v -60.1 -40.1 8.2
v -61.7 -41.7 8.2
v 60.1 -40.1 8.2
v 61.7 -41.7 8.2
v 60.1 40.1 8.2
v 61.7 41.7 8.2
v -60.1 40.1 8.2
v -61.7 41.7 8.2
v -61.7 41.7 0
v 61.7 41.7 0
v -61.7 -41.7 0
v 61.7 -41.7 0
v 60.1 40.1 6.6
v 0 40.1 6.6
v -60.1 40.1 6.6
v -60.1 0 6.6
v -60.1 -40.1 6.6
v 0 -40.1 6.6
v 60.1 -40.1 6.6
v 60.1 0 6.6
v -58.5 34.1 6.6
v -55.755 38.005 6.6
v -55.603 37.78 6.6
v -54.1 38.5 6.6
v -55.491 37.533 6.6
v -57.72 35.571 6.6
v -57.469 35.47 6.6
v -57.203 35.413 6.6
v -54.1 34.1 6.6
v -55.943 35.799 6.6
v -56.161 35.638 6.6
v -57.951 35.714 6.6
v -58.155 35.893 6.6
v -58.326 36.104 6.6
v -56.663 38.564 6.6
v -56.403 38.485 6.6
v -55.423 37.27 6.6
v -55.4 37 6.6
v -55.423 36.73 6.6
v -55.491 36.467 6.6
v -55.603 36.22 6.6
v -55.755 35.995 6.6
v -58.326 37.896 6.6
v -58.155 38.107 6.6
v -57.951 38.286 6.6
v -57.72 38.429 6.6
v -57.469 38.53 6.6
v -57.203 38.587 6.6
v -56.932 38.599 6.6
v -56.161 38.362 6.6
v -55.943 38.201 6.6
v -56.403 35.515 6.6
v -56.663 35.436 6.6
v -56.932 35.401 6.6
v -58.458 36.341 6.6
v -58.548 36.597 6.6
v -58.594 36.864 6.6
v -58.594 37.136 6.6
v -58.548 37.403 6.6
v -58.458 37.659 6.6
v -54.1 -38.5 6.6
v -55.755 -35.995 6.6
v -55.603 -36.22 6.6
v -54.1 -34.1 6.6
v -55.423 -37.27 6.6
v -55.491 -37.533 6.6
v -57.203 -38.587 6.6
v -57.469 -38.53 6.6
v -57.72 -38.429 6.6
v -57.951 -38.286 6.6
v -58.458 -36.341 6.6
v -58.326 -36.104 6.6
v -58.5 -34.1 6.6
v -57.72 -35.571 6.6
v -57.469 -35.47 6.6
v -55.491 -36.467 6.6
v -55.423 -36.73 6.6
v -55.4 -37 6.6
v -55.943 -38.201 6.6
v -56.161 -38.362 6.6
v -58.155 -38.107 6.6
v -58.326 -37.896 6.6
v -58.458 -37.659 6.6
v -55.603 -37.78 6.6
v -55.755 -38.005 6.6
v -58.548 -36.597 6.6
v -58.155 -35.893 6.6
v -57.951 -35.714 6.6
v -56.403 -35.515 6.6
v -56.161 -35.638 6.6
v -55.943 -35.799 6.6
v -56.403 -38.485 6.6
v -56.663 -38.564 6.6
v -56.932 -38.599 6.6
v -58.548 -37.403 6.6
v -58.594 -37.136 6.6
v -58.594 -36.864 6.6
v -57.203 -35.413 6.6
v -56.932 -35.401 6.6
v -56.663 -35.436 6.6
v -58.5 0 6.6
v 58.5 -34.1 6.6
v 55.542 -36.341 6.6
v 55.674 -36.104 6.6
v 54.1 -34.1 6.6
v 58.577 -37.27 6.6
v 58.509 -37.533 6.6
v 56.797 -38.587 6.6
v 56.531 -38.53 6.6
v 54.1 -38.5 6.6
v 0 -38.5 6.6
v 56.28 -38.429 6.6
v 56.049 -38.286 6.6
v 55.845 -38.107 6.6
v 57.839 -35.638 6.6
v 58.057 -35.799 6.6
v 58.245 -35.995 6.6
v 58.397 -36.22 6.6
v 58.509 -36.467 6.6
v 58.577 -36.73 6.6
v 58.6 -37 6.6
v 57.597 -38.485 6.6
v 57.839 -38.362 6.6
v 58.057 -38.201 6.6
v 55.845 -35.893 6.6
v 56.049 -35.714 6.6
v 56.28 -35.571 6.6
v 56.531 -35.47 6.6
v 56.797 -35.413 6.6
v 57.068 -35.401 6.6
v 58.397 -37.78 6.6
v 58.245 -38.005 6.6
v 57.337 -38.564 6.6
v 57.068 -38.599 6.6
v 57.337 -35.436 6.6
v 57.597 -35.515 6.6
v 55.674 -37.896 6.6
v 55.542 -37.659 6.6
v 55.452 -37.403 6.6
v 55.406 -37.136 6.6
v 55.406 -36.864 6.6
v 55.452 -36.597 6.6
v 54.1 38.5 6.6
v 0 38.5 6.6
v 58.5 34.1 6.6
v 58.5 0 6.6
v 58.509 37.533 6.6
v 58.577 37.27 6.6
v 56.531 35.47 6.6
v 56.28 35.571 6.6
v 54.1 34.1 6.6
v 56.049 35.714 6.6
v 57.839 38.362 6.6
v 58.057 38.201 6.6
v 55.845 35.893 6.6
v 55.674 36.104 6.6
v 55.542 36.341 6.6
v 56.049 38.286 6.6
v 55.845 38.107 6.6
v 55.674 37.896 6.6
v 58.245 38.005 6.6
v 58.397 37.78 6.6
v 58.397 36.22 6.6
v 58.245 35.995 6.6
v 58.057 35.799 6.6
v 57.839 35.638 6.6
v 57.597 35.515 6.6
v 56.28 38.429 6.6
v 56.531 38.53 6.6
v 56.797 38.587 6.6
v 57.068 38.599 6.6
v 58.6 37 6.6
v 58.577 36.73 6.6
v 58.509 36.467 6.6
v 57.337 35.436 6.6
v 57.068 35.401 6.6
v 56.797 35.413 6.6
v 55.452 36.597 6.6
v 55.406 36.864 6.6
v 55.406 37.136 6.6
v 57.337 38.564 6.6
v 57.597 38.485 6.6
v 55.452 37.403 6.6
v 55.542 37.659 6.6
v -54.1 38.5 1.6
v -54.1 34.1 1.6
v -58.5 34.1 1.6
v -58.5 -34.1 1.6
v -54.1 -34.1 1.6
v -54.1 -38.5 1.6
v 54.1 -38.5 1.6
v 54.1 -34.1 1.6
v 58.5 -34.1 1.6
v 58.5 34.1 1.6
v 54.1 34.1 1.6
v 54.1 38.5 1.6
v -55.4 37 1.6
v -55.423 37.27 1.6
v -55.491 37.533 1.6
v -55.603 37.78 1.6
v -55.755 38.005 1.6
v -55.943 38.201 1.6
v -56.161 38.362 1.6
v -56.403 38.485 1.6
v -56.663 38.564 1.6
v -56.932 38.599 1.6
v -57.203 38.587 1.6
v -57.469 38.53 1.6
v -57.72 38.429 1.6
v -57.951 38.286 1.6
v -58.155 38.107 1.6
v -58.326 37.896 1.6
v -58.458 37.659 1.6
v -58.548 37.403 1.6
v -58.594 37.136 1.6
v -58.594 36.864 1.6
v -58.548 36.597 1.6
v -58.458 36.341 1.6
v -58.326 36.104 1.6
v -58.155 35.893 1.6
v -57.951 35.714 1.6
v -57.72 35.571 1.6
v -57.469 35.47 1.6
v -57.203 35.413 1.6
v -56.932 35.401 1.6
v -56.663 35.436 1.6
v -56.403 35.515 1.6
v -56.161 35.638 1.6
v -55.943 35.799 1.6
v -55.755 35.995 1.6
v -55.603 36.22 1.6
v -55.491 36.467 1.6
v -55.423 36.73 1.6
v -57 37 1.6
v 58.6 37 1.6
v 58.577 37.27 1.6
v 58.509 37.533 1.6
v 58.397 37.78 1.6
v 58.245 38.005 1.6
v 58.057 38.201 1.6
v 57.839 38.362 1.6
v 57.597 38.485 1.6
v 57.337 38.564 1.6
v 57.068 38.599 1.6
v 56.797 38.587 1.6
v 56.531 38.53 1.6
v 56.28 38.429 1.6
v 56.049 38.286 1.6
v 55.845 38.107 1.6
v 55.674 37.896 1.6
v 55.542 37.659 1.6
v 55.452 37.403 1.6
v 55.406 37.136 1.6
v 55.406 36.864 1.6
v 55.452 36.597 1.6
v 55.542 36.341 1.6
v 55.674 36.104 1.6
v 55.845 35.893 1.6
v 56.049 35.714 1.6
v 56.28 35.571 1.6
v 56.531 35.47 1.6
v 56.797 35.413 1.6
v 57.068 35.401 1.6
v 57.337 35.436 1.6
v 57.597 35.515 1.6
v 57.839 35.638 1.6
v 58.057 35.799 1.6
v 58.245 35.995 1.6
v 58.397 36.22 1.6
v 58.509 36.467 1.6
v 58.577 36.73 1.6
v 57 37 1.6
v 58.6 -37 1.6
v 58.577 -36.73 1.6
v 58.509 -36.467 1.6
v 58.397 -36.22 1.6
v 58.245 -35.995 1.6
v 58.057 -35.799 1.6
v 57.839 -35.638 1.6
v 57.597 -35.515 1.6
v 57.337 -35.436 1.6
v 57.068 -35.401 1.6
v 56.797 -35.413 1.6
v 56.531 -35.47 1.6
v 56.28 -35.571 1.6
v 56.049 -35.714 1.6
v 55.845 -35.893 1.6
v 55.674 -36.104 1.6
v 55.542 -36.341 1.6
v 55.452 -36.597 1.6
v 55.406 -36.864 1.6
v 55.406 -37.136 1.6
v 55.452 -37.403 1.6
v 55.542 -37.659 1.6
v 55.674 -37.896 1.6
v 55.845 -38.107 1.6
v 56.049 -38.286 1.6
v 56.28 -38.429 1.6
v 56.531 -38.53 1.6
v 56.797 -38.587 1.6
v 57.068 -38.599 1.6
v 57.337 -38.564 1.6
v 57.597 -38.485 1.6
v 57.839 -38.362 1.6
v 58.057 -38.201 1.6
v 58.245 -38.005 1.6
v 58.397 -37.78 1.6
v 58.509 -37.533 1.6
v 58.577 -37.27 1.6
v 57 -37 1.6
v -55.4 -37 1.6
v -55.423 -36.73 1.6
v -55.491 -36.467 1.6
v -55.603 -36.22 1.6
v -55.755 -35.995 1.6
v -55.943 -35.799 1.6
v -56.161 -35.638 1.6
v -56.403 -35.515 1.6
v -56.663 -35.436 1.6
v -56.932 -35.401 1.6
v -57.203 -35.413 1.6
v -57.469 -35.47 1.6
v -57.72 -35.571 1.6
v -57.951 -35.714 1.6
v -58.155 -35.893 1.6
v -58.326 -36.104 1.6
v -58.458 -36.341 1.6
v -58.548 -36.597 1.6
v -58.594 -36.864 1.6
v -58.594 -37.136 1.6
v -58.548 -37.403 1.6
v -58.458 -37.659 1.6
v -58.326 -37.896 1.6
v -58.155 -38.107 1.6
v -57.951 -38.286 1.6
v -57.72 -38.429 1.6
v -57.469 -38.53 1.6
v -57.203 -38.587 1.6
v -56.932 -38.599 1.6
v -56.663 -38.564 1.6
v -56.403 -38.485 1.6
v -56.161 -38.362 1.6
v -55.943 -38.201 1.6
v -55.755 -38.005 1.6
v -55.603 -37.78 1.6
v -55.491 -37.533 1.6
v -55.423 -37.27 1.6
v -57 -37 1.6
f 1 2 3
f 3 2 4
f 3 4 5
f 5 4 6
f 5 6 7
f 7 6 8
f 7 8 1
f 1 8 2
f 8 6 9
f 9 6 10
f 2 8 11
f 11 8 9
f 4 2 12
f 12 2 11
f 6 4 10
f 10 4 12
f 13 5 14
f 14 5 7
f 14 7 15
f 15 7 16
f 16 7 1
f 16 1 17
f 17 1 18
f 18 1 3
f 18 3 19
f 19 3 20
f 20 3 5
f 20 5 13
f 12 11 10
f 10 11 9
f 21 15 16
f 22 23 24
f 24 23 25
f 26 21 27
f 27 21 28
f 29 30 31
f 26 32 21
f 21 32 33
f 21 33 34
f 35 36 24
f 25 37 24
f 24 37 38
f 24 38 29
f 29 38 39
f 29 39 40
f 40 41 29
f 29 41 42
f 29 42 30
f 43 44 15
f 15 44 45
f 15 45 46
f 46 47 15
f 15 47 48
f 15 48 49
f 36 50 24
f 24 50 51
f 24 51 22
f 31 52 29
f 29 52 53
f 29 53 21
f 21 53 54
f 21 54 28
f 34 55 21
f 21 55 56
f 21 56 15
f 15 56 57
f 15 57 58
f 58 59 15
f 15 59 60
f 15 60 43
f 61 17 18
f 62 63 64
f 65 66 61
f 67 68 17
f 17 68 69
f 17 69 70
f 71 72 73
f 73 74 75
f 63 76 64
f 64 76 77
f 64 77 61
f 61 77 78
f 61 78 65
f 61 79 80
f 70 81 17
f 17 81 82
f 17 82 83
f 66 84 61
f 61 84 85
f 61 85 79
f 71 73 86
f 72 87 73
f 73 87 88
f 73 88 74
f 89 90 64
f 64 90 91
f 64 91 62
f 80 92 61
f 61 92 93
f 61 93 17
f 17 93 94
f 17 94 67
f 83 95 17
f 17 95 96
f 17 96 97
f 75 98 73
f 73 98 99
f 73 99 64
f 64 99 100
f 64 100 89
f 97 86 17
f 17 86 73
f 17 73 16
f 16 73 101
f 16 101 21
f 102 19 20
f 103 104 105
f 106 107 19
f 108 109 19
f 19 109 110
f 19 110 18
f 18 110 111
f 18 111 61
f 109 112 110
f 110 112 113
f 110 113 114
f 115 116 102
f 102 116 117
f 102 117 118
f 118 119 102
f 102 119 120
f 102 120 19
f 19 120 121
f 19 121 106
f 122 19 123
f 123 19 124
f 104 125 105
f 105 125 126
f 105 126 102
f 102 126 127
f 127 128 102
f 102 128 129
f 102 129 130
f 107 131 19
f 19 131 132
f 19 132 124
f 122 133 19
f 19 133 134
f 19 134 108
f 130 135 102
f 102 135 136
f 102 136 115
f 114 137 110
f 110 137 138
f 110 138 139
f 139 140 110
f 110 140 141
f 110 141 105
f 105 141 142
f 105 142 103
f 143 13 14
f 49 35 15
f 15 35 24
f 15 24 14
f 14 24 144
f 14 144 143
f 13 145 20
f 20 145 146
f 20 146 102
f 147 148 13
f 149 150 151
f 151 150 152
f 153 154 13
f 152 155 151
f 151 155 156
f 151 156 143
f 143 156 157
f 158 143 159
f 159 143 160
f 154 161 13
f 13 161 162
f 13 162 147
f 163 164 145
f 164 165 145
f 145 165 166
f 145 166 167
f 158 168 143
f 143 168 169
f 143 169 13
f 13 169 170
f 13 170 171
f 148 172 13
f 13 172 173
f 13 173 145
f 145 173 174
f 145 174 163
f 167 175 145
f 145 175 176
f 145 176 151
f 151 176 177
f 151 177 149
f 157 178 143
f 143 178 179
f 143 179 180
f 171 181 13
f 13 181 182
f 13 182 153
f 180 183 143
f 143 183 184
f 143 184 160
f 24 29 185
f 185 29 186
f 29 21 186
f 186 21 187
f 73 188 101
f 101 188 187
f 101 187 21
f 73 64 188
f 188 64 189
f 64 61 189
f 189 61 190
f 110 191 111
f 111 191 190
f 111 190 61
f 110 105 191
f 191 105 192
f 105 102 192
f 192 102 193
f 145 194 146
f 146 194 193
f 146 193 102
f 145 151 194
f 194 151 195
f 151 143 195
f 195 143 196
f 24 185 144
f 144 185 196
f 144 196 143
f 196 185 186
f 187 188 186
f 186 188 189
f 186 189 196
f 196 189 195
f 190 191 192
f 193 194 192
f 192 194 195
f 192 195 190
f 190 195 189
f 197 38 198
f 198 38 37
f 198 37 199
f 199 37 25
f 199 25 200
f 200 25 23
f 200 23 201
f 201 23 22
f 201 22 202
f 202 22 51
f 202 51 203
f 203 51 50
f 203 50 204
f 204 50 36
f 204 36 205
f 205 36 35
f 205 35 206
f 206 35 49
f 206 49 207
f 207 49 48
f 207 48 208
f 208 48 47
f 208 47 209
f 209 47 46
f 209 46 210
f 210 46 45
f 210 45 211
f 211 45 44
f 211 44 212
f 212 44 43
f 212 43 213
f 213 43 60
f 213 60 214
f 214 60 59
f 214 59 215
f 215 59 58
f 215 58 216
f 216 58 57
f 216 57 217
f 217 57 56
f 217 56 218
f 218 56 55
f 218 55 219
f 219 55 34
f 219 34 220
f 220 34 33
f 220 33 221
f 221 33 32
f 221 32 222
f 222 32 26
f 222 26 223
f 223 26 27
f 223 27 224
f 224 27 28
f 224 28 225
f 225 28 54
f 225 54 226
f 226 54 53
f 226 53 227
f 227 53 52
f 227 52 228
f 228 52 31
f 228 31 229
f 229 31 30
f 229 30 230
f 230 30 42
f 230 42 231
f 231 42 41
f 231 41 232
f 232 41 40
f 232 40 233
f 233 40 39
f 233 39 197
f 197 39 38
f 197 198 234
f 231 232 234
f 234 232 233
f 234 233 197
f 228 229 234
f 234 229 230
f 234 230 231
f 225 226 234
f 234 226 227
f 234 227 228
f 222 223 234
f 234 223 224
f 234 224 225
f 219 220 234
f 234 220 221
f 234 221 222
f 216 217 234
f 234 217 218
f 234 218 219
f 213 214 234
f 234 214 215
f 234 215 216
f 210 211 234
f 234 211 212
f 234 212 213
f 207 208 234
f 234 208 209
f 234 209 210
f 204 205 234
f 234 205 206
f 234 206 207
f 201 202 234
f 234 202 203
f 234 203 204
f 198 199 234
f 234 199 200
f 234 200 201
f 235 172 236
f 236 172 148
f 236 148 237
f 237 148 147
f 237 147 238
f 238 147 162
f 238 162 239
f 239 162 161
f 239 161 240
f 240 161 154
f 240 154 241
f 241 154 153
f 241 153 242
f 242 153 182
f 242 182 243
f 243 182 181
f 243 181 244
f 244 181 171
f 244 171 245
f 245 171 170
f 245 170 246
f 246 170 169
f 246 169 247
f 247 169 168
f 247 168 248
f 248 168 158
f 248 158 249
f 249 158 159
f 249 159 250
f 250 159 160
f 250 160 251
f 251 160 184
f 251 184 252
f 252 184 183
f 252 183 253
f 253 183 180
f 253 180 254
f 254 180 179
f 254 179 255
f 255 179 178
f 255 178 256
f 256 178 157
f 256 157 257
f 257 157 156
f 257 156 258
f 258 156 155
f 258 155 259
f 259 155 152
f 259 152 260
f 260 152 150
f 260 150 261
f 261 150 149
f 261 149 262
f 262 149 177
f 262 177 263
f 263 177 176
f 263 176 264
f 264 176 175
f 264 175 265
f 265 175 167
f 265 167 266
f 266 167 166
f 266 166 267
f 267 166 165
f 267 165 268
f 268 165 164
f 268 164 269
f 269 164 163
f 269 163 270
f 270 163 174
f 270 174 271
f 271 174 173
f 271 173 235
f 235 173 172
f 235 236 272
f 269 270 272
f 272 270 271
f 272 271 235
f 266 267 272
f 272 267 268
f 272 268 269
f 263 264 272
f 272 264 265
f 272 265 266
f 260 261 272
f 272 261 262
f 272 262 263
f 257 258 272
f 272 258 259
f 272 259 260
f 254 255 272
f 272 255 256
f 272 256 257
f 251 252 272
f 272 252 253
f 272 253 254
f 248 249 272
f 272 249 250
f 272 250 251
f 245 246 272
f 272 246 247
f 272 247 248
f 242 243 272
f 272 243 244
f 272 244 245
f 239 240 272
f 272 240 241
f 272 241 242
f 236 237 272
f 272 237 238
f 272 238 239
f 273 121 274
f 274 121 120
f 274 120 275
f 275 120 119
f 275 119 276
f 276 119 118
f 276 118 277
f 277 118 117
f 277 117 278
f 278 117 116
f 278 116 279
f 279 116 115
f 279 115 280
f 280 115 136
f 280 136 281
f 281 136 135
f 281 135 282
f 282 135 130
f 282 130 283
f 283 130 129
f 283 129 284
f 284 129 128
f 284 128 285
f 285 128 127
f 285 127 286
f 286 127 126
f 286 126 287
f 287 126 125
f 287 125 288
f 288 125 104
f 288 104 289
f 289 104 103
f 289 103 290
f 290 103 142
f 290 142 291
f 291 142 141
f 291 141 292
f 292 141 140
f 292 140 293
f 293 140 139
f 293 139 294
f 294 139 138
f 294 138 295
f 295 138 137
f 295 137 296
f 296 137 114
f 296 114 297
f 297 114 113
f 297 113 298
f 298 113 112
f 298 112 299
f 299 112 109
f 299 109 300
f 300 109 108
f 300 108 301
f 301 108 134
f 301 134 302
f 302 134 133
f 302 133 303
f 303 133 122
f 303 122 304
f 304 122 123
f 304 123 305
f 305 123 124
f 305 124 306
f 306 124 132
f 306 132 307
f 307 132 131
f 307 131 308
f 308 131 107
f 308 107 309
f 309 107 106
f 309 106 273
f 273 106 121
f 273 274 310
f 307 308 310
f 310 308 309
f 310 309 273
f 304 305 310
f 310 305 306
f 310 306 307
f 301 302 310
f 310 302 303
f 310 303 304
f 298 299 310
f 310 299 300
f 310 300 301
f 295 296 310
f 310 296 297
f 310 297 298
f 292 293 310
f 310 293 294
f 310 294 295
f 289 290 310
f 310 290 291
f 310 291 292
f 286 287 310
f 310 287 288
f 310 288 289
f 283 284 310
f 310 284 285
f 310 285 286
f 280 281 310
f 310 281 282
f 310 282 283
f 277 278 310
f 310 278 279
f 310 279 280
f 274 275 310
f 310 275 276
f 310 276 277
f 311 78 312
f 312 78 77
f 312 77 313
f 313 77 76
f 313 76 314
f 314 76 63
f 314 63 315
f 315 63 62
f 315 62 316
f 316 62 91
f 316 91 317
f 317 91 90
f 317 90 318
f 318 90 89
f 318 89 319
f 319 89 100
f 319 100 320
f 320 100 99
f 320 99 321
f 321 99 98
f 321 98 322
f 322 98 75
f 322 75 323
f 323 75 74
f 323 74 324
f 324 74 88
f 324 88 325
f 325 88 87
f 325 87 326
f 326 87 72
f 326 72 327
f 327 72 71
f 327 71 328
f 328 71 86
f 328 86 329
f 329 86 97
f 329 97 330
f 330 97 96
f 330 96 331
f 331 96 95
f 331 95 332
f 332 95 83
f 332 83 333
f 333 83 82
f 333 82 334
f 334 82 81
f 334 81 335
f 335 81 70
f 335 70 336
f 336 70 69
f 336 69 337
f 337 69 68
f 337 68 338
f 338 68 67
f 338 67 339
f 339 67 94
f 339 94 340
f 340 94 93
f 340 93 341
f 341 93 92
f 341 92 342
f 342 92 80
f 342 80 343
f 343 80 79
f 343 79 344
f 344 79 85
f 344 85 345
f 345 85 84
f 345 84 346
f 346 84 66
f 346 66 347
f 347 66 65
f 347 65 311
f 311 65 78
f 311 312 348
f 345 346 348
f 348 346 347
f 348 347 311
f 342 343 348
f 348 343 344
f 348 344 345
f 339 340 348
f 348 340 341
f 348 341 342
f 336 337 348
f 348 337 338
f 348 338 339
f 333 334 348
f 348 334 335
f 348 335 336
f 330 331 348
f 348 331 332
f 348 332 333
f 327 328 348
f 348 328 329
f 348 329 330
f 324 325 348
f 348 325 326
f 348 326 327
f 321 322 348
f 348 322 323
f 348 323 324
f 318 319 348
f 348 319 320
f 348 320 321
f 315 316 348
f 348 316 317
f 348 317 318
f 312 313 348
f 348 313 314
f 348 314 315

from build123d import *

# Parameters (mm, degrees)
SKETCH1_W           = 120.2
SKETCH1_H           = 80.2
BOSS_EXTRUDE1_DEPTH = 1.6
SKETCH2_W           = 123.4
SKETCH2_H           = 83.4
SKETCH2_W_2         = 120.2
SKETCH2_H_2         = 80.2
BOSS_EXTRUDE2_DEPTH = 8.2
SKETCH3_W           = 120.2
SKETCH3_H           = 80.2
BOSS_EXTRUDE3_DEPTH = 5
SKETCH4_R           = 1.6
CUT_EXTRUDE1_DEPTH  = 5


with BuildPart() as part:
    # Sketch1 → Boss-Extrude1 (new body)
    with BuildSketch(Plane.XY):
        Rectangle(SKETCH1_W, SKETCH1_H)
    extrude(amount=BOSS_EXTRUDE1_DEPTH)

    # Sketch2 → Boss-Extrude2 (add)
    with BuildSketch(Plane.XY):
        Rectangle(SKETCH2_W, SKETCH2_H)
        Rectangle(SKETCH2_W_2, SKETCH2_H_2, mode=Mode.SUBTRACT)
    extrude(amount=BOSS_EXTRUDE2_DEPTH)

    # Sketch3 → Boss-Extrude3 (add)
    with BuildSketch(Plane.XY.offset(1.6)):
        Rectangle(SKETCH3_W, SKETCH3_H)
        Polygon((-58.5, 34.1), (-54.1, 34.1), (-54.1, 38.5), (54.1, 38.5), (54.1, 34.1), (58.5, 34.1), (58.5, -34.1), (54.1, -34.1), (54.1, -38.5), (-54.1, -38.5), (-54.1, -34.1), (-58.5, -34.1), align=None, mode=Mode.SUBTRACT)
    extrude(amount=BOSS_EXTRUDE3_DEPTH)

    # Sketch4 → Cut-Extrude1 (cut)
    with BuildSketch(Plane.XY.offset(6.6)):
        with Locations((-57, 37)):
            Circle(SKETCH4_R)
        with Locations((57, 37)):
            Circle(SKETCH4_R)
        with Locations((57, -37)):
            Circle(SKETCH4_R)
        with Locations((-57, -37)):
            Circle(SKETCH4_R)
    extrude(amount=-CUT_EXTRUDE1_DEPTH, mode=Mode.SUBTRACT)


solid = part.part
